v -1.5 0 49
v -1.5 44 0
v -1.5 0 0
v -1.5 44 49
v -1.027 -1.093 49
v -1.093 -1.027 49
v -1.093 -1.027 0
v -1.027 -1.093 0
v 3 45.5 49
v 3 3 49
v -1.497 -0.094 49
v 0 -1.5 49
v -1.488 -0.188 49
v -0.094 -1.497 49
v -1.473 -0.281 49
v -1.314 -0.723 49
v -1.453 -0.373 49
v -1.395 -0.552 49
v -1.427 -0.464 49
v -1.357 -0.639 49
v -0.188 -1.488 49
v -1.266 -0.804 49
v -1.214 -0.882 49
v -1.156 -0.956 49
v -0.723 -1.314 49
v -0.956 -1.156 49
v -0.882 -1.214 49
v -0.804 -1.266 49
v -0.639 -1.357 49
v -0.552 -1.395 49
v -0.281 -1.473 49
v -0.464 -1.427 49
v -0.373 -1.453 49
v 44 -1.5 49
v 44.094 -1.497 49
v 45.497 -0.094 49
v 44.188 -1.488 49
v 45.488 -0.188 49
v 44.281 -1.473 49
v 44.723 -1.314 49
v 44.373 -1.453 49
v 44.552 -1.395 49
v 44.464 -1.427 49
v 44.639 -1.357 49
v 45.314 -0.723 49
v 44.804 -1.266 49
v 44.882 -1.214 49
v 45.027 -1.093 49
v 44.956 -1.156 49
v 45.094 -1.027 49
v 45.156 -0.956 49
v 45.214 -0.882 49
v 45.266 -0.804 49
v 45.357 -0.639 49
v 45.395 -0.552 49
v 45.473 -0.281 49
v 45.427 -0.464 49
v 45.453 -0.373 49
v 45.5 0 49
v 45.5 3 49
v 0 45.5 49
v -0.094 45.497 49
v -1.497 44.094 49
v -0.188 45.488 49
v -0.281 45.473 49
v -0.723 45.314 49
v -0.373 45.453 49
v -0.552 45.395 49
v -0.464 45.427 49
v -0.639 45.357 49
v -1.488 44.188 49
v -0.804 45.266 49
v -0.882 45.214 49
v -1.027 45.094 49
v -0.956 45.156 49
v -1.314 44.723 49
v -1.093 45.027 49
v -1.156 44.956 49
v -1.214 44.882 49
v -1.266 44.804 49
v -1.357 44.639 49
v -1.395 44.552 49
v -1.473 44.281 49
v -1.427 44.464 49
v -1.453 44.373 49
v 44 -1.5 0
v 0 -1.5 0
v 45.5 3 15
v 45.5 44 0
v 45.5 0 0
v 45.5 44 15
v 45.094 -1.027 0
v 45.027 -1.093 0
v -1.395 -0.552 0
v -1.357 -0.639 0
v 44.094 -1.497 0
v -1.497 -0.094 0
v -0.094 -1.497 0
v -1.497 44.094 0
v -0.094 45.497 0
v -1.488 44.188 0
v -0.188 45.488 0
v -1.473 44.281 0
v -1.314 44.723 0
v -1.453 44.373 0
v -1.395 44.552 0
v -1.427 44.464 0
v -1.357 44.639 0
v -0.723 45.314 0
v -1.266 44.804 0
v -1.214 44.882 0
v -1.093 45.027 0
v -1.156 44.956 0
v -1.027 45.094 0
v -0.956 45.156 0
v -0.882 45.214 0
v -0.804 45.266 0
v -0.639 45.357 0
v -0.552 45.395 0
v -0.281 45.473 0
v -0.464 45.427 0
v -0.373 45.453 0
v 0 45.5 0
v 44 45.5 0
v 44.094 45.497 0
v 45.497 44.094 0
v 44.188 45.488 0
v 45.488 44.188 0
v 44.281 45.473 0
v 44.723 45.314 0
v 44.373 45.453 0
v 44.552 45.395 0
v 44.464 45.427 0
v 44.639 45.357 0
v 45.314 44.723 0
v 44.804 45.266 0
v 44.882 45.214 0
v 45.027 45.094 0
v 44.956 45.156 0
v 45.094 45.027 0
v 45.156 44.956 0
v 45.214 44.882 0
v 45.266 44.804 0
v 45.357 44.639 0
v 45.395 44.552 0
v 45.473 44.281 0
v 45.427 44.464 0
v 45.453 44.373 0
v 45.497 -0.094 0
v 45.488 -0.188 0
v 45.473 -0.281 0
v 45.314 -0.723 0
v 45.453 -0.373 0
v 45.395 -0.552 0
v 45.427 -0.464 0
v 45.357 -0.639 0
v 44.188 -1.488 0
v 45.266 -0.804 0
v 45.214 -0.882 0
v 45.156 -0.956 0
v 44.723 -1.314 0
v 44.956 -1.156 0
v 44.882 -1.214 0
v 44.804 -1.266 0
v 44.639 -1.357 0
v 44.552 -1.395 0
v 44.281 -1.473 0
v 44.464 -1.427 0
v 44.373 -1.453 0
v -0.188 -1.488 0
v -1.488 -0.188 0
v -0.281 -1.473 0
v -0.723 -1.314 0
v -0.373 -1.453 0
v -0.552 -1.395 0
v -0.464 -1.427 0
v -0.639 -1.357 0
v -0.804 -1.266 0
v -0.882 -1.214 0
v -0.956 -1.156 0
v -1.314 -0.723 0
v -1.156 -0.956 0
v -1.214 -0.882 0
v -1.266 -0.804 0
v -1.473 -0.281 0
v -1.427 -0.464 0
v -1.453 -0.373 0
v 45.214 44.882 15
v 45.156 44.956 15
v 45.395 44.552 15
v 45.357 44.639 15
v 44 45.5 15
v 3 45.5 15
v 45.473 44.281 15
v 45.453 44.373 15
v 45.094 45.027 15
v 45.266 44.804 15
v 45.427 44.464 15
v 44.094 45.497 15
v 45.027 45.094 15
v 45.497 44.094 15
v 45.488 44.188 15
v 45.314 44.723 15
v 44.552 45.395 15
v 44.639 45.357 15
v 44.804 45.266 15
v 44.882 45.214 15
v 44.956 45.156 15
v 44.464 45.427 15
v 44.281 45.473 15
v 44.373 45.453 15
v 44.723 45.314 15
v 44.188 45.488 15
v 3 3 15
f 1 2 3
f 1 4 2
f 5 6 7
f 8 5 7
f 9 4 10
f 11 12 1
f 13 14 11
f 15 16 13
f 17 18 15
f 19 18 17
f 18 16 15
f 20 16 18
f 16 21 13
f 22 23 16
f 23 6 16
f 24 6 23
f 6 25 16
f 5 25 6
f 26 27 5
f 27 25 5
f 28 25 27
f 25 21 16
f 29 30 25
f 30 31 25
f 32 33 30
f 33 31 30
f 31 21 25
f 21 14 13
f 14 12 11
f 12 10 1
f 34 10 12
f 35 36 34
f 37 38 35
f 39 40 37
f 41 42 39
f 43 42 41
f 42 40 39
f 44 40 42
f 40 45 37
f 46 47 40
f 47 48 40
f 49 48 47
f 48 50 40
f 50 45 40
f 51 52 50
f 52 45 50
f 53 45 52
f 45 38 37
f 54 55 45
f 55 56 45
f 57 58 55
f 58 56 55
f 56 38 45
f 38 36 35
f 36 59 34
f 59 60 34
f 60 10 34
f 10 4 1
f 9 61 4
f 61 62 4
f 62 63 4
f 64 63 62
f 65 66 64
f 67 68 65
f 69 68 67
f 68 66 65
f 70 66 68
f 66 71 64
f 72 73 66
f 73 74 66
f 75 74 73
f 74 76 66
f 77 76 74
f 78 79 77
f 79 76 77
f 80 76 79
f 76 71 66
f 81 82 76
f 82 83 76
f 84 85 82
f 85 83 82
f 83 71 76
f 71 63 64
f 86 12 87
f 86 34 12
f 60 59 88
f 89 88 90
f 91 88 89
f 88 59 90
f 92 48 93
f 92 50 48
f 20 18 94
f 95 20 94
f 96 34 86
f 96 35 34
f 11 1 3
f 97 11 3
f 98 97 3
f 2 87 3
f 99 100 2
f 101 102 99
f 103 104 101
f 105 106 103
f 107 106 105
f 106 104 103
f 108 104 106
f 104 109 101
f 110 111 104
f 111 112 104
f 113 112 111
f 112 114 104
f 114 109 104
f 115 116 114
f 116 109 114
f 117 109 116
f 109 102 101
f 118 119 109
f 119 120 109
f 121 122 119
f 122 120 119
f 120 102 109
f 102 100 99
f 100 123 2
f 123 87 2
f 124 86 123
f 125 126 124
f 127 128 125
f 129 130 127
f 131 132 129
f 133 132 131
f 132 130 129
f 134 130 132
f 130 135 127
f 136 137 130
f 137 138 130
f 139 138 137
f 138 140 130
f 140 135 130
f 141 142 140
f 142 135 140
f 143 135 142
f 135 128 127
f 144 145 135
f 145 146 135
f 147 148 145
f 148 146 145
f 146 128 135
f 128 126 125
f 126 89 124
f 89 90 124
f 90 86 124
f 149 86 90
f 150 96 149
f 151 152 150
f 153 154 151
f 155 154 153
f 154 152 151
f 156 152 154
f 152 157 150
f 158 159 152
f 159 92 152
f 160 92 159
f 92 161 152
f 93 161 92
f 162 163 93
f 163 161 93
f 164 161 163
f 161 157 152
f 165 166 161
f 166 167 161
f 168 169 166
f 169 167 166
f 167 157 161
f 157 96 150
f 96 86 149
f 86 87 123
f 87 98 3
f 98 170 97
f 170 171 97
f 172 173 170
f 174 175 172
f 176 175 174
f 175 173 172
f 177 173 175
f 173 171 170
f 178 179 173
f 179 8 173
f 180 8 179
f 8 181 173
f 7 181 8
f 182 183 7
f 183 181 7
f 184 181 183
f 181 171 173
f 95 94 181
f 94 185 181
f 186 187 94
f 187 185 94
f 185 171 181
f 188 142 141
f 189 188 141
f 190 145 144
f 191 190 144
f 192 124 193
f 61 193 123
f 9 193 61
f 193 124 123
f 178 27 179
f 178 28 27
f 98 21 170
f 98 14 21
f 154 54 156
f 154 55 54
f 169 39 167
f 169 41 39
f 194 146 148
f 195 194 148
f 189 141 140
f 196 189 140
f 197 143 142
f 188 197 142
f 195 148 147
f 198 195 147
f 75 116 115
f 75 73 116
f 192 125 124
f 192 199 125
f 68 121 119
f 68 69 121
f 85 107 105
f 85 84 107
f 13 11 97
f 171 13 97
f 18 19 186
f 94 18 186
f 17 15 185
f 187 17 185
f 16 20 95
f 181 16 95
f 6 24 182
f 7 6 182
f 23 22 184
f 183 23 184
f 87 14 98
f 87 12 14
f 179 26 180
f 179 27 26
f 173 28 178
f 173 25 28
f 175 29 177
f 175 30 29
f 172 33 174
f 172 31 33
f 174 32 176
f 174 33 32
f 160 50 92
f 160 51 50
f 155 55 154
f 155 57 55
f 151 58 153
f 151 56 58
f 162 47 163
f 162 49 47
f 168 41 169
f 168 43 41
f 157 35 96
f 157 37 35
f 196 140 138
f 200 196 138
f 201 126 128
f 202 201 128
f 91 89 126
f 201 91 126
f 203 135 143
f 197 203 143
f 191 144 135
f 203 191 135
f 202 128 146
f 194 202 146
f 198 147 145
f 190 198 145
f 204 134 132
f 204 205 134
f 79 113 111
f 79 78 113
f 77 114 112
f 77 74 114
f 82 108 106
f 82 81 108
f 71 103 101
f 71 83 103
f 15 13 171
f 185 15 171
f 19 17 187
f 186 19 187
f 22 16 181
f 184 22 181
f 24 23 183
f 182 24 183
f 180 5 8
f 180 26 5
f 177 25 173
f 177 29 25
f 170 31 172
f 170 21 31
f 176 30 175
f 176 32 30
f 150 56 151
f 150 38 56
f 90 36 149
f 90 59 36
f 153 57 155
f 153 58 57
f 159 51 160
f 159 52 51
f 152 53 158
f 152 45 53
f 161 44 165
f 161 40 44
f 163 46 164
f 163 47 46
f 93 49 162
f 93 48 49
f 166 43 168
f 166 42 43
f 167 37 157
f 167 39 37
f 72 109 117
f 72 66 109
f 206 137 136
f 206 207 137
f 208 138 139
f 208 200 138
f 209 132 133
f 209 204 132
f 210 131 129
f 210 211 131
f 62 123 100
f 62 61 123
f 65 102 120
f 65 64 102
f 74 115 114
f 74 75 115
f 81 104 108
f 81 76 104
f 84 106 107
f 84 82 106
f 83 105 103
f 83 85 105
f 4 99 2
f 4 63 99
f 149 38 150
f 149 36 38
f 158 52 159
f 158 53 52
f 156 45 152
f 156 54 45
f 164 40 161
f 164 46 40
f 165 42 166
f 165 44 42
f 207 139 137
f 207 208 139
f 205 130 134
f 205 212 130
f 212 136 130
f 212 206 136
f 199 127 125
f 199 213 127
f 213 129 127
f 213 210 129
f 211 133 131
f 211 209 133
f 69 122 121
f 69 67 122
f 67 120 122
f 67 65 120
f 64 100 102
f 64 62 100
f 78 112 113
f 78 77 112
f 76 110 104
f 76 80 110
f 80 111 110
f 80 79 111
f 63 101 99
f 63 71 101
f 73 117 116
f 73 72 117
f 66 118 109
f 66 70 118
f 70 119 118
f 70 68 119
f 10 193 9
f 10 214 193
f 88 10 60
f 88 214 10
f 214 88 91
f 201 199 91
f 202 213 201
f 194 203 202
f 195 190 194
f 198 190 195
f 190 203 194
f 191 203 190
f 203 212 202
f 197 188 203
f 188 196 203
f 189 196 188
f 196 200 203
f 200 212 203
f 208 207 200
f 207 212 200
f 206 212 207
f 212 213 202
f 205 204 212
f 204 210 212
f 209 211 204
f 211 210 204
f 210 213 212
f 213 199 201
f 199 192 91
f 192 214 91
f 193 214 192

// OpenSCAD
//prusa i3 Z motor support for short motors
//optional: glue foam to part for a tighter fit

$fn=100;

height_from_ground = 15;
side = 44;
    
difference(){
    minkowski(){
        cube(side,side,height_from_ground);
        cylinder(5,d=3);
        }
     
    translate([3,3,height_from_ground])
        cube(side,side,10);
    }
